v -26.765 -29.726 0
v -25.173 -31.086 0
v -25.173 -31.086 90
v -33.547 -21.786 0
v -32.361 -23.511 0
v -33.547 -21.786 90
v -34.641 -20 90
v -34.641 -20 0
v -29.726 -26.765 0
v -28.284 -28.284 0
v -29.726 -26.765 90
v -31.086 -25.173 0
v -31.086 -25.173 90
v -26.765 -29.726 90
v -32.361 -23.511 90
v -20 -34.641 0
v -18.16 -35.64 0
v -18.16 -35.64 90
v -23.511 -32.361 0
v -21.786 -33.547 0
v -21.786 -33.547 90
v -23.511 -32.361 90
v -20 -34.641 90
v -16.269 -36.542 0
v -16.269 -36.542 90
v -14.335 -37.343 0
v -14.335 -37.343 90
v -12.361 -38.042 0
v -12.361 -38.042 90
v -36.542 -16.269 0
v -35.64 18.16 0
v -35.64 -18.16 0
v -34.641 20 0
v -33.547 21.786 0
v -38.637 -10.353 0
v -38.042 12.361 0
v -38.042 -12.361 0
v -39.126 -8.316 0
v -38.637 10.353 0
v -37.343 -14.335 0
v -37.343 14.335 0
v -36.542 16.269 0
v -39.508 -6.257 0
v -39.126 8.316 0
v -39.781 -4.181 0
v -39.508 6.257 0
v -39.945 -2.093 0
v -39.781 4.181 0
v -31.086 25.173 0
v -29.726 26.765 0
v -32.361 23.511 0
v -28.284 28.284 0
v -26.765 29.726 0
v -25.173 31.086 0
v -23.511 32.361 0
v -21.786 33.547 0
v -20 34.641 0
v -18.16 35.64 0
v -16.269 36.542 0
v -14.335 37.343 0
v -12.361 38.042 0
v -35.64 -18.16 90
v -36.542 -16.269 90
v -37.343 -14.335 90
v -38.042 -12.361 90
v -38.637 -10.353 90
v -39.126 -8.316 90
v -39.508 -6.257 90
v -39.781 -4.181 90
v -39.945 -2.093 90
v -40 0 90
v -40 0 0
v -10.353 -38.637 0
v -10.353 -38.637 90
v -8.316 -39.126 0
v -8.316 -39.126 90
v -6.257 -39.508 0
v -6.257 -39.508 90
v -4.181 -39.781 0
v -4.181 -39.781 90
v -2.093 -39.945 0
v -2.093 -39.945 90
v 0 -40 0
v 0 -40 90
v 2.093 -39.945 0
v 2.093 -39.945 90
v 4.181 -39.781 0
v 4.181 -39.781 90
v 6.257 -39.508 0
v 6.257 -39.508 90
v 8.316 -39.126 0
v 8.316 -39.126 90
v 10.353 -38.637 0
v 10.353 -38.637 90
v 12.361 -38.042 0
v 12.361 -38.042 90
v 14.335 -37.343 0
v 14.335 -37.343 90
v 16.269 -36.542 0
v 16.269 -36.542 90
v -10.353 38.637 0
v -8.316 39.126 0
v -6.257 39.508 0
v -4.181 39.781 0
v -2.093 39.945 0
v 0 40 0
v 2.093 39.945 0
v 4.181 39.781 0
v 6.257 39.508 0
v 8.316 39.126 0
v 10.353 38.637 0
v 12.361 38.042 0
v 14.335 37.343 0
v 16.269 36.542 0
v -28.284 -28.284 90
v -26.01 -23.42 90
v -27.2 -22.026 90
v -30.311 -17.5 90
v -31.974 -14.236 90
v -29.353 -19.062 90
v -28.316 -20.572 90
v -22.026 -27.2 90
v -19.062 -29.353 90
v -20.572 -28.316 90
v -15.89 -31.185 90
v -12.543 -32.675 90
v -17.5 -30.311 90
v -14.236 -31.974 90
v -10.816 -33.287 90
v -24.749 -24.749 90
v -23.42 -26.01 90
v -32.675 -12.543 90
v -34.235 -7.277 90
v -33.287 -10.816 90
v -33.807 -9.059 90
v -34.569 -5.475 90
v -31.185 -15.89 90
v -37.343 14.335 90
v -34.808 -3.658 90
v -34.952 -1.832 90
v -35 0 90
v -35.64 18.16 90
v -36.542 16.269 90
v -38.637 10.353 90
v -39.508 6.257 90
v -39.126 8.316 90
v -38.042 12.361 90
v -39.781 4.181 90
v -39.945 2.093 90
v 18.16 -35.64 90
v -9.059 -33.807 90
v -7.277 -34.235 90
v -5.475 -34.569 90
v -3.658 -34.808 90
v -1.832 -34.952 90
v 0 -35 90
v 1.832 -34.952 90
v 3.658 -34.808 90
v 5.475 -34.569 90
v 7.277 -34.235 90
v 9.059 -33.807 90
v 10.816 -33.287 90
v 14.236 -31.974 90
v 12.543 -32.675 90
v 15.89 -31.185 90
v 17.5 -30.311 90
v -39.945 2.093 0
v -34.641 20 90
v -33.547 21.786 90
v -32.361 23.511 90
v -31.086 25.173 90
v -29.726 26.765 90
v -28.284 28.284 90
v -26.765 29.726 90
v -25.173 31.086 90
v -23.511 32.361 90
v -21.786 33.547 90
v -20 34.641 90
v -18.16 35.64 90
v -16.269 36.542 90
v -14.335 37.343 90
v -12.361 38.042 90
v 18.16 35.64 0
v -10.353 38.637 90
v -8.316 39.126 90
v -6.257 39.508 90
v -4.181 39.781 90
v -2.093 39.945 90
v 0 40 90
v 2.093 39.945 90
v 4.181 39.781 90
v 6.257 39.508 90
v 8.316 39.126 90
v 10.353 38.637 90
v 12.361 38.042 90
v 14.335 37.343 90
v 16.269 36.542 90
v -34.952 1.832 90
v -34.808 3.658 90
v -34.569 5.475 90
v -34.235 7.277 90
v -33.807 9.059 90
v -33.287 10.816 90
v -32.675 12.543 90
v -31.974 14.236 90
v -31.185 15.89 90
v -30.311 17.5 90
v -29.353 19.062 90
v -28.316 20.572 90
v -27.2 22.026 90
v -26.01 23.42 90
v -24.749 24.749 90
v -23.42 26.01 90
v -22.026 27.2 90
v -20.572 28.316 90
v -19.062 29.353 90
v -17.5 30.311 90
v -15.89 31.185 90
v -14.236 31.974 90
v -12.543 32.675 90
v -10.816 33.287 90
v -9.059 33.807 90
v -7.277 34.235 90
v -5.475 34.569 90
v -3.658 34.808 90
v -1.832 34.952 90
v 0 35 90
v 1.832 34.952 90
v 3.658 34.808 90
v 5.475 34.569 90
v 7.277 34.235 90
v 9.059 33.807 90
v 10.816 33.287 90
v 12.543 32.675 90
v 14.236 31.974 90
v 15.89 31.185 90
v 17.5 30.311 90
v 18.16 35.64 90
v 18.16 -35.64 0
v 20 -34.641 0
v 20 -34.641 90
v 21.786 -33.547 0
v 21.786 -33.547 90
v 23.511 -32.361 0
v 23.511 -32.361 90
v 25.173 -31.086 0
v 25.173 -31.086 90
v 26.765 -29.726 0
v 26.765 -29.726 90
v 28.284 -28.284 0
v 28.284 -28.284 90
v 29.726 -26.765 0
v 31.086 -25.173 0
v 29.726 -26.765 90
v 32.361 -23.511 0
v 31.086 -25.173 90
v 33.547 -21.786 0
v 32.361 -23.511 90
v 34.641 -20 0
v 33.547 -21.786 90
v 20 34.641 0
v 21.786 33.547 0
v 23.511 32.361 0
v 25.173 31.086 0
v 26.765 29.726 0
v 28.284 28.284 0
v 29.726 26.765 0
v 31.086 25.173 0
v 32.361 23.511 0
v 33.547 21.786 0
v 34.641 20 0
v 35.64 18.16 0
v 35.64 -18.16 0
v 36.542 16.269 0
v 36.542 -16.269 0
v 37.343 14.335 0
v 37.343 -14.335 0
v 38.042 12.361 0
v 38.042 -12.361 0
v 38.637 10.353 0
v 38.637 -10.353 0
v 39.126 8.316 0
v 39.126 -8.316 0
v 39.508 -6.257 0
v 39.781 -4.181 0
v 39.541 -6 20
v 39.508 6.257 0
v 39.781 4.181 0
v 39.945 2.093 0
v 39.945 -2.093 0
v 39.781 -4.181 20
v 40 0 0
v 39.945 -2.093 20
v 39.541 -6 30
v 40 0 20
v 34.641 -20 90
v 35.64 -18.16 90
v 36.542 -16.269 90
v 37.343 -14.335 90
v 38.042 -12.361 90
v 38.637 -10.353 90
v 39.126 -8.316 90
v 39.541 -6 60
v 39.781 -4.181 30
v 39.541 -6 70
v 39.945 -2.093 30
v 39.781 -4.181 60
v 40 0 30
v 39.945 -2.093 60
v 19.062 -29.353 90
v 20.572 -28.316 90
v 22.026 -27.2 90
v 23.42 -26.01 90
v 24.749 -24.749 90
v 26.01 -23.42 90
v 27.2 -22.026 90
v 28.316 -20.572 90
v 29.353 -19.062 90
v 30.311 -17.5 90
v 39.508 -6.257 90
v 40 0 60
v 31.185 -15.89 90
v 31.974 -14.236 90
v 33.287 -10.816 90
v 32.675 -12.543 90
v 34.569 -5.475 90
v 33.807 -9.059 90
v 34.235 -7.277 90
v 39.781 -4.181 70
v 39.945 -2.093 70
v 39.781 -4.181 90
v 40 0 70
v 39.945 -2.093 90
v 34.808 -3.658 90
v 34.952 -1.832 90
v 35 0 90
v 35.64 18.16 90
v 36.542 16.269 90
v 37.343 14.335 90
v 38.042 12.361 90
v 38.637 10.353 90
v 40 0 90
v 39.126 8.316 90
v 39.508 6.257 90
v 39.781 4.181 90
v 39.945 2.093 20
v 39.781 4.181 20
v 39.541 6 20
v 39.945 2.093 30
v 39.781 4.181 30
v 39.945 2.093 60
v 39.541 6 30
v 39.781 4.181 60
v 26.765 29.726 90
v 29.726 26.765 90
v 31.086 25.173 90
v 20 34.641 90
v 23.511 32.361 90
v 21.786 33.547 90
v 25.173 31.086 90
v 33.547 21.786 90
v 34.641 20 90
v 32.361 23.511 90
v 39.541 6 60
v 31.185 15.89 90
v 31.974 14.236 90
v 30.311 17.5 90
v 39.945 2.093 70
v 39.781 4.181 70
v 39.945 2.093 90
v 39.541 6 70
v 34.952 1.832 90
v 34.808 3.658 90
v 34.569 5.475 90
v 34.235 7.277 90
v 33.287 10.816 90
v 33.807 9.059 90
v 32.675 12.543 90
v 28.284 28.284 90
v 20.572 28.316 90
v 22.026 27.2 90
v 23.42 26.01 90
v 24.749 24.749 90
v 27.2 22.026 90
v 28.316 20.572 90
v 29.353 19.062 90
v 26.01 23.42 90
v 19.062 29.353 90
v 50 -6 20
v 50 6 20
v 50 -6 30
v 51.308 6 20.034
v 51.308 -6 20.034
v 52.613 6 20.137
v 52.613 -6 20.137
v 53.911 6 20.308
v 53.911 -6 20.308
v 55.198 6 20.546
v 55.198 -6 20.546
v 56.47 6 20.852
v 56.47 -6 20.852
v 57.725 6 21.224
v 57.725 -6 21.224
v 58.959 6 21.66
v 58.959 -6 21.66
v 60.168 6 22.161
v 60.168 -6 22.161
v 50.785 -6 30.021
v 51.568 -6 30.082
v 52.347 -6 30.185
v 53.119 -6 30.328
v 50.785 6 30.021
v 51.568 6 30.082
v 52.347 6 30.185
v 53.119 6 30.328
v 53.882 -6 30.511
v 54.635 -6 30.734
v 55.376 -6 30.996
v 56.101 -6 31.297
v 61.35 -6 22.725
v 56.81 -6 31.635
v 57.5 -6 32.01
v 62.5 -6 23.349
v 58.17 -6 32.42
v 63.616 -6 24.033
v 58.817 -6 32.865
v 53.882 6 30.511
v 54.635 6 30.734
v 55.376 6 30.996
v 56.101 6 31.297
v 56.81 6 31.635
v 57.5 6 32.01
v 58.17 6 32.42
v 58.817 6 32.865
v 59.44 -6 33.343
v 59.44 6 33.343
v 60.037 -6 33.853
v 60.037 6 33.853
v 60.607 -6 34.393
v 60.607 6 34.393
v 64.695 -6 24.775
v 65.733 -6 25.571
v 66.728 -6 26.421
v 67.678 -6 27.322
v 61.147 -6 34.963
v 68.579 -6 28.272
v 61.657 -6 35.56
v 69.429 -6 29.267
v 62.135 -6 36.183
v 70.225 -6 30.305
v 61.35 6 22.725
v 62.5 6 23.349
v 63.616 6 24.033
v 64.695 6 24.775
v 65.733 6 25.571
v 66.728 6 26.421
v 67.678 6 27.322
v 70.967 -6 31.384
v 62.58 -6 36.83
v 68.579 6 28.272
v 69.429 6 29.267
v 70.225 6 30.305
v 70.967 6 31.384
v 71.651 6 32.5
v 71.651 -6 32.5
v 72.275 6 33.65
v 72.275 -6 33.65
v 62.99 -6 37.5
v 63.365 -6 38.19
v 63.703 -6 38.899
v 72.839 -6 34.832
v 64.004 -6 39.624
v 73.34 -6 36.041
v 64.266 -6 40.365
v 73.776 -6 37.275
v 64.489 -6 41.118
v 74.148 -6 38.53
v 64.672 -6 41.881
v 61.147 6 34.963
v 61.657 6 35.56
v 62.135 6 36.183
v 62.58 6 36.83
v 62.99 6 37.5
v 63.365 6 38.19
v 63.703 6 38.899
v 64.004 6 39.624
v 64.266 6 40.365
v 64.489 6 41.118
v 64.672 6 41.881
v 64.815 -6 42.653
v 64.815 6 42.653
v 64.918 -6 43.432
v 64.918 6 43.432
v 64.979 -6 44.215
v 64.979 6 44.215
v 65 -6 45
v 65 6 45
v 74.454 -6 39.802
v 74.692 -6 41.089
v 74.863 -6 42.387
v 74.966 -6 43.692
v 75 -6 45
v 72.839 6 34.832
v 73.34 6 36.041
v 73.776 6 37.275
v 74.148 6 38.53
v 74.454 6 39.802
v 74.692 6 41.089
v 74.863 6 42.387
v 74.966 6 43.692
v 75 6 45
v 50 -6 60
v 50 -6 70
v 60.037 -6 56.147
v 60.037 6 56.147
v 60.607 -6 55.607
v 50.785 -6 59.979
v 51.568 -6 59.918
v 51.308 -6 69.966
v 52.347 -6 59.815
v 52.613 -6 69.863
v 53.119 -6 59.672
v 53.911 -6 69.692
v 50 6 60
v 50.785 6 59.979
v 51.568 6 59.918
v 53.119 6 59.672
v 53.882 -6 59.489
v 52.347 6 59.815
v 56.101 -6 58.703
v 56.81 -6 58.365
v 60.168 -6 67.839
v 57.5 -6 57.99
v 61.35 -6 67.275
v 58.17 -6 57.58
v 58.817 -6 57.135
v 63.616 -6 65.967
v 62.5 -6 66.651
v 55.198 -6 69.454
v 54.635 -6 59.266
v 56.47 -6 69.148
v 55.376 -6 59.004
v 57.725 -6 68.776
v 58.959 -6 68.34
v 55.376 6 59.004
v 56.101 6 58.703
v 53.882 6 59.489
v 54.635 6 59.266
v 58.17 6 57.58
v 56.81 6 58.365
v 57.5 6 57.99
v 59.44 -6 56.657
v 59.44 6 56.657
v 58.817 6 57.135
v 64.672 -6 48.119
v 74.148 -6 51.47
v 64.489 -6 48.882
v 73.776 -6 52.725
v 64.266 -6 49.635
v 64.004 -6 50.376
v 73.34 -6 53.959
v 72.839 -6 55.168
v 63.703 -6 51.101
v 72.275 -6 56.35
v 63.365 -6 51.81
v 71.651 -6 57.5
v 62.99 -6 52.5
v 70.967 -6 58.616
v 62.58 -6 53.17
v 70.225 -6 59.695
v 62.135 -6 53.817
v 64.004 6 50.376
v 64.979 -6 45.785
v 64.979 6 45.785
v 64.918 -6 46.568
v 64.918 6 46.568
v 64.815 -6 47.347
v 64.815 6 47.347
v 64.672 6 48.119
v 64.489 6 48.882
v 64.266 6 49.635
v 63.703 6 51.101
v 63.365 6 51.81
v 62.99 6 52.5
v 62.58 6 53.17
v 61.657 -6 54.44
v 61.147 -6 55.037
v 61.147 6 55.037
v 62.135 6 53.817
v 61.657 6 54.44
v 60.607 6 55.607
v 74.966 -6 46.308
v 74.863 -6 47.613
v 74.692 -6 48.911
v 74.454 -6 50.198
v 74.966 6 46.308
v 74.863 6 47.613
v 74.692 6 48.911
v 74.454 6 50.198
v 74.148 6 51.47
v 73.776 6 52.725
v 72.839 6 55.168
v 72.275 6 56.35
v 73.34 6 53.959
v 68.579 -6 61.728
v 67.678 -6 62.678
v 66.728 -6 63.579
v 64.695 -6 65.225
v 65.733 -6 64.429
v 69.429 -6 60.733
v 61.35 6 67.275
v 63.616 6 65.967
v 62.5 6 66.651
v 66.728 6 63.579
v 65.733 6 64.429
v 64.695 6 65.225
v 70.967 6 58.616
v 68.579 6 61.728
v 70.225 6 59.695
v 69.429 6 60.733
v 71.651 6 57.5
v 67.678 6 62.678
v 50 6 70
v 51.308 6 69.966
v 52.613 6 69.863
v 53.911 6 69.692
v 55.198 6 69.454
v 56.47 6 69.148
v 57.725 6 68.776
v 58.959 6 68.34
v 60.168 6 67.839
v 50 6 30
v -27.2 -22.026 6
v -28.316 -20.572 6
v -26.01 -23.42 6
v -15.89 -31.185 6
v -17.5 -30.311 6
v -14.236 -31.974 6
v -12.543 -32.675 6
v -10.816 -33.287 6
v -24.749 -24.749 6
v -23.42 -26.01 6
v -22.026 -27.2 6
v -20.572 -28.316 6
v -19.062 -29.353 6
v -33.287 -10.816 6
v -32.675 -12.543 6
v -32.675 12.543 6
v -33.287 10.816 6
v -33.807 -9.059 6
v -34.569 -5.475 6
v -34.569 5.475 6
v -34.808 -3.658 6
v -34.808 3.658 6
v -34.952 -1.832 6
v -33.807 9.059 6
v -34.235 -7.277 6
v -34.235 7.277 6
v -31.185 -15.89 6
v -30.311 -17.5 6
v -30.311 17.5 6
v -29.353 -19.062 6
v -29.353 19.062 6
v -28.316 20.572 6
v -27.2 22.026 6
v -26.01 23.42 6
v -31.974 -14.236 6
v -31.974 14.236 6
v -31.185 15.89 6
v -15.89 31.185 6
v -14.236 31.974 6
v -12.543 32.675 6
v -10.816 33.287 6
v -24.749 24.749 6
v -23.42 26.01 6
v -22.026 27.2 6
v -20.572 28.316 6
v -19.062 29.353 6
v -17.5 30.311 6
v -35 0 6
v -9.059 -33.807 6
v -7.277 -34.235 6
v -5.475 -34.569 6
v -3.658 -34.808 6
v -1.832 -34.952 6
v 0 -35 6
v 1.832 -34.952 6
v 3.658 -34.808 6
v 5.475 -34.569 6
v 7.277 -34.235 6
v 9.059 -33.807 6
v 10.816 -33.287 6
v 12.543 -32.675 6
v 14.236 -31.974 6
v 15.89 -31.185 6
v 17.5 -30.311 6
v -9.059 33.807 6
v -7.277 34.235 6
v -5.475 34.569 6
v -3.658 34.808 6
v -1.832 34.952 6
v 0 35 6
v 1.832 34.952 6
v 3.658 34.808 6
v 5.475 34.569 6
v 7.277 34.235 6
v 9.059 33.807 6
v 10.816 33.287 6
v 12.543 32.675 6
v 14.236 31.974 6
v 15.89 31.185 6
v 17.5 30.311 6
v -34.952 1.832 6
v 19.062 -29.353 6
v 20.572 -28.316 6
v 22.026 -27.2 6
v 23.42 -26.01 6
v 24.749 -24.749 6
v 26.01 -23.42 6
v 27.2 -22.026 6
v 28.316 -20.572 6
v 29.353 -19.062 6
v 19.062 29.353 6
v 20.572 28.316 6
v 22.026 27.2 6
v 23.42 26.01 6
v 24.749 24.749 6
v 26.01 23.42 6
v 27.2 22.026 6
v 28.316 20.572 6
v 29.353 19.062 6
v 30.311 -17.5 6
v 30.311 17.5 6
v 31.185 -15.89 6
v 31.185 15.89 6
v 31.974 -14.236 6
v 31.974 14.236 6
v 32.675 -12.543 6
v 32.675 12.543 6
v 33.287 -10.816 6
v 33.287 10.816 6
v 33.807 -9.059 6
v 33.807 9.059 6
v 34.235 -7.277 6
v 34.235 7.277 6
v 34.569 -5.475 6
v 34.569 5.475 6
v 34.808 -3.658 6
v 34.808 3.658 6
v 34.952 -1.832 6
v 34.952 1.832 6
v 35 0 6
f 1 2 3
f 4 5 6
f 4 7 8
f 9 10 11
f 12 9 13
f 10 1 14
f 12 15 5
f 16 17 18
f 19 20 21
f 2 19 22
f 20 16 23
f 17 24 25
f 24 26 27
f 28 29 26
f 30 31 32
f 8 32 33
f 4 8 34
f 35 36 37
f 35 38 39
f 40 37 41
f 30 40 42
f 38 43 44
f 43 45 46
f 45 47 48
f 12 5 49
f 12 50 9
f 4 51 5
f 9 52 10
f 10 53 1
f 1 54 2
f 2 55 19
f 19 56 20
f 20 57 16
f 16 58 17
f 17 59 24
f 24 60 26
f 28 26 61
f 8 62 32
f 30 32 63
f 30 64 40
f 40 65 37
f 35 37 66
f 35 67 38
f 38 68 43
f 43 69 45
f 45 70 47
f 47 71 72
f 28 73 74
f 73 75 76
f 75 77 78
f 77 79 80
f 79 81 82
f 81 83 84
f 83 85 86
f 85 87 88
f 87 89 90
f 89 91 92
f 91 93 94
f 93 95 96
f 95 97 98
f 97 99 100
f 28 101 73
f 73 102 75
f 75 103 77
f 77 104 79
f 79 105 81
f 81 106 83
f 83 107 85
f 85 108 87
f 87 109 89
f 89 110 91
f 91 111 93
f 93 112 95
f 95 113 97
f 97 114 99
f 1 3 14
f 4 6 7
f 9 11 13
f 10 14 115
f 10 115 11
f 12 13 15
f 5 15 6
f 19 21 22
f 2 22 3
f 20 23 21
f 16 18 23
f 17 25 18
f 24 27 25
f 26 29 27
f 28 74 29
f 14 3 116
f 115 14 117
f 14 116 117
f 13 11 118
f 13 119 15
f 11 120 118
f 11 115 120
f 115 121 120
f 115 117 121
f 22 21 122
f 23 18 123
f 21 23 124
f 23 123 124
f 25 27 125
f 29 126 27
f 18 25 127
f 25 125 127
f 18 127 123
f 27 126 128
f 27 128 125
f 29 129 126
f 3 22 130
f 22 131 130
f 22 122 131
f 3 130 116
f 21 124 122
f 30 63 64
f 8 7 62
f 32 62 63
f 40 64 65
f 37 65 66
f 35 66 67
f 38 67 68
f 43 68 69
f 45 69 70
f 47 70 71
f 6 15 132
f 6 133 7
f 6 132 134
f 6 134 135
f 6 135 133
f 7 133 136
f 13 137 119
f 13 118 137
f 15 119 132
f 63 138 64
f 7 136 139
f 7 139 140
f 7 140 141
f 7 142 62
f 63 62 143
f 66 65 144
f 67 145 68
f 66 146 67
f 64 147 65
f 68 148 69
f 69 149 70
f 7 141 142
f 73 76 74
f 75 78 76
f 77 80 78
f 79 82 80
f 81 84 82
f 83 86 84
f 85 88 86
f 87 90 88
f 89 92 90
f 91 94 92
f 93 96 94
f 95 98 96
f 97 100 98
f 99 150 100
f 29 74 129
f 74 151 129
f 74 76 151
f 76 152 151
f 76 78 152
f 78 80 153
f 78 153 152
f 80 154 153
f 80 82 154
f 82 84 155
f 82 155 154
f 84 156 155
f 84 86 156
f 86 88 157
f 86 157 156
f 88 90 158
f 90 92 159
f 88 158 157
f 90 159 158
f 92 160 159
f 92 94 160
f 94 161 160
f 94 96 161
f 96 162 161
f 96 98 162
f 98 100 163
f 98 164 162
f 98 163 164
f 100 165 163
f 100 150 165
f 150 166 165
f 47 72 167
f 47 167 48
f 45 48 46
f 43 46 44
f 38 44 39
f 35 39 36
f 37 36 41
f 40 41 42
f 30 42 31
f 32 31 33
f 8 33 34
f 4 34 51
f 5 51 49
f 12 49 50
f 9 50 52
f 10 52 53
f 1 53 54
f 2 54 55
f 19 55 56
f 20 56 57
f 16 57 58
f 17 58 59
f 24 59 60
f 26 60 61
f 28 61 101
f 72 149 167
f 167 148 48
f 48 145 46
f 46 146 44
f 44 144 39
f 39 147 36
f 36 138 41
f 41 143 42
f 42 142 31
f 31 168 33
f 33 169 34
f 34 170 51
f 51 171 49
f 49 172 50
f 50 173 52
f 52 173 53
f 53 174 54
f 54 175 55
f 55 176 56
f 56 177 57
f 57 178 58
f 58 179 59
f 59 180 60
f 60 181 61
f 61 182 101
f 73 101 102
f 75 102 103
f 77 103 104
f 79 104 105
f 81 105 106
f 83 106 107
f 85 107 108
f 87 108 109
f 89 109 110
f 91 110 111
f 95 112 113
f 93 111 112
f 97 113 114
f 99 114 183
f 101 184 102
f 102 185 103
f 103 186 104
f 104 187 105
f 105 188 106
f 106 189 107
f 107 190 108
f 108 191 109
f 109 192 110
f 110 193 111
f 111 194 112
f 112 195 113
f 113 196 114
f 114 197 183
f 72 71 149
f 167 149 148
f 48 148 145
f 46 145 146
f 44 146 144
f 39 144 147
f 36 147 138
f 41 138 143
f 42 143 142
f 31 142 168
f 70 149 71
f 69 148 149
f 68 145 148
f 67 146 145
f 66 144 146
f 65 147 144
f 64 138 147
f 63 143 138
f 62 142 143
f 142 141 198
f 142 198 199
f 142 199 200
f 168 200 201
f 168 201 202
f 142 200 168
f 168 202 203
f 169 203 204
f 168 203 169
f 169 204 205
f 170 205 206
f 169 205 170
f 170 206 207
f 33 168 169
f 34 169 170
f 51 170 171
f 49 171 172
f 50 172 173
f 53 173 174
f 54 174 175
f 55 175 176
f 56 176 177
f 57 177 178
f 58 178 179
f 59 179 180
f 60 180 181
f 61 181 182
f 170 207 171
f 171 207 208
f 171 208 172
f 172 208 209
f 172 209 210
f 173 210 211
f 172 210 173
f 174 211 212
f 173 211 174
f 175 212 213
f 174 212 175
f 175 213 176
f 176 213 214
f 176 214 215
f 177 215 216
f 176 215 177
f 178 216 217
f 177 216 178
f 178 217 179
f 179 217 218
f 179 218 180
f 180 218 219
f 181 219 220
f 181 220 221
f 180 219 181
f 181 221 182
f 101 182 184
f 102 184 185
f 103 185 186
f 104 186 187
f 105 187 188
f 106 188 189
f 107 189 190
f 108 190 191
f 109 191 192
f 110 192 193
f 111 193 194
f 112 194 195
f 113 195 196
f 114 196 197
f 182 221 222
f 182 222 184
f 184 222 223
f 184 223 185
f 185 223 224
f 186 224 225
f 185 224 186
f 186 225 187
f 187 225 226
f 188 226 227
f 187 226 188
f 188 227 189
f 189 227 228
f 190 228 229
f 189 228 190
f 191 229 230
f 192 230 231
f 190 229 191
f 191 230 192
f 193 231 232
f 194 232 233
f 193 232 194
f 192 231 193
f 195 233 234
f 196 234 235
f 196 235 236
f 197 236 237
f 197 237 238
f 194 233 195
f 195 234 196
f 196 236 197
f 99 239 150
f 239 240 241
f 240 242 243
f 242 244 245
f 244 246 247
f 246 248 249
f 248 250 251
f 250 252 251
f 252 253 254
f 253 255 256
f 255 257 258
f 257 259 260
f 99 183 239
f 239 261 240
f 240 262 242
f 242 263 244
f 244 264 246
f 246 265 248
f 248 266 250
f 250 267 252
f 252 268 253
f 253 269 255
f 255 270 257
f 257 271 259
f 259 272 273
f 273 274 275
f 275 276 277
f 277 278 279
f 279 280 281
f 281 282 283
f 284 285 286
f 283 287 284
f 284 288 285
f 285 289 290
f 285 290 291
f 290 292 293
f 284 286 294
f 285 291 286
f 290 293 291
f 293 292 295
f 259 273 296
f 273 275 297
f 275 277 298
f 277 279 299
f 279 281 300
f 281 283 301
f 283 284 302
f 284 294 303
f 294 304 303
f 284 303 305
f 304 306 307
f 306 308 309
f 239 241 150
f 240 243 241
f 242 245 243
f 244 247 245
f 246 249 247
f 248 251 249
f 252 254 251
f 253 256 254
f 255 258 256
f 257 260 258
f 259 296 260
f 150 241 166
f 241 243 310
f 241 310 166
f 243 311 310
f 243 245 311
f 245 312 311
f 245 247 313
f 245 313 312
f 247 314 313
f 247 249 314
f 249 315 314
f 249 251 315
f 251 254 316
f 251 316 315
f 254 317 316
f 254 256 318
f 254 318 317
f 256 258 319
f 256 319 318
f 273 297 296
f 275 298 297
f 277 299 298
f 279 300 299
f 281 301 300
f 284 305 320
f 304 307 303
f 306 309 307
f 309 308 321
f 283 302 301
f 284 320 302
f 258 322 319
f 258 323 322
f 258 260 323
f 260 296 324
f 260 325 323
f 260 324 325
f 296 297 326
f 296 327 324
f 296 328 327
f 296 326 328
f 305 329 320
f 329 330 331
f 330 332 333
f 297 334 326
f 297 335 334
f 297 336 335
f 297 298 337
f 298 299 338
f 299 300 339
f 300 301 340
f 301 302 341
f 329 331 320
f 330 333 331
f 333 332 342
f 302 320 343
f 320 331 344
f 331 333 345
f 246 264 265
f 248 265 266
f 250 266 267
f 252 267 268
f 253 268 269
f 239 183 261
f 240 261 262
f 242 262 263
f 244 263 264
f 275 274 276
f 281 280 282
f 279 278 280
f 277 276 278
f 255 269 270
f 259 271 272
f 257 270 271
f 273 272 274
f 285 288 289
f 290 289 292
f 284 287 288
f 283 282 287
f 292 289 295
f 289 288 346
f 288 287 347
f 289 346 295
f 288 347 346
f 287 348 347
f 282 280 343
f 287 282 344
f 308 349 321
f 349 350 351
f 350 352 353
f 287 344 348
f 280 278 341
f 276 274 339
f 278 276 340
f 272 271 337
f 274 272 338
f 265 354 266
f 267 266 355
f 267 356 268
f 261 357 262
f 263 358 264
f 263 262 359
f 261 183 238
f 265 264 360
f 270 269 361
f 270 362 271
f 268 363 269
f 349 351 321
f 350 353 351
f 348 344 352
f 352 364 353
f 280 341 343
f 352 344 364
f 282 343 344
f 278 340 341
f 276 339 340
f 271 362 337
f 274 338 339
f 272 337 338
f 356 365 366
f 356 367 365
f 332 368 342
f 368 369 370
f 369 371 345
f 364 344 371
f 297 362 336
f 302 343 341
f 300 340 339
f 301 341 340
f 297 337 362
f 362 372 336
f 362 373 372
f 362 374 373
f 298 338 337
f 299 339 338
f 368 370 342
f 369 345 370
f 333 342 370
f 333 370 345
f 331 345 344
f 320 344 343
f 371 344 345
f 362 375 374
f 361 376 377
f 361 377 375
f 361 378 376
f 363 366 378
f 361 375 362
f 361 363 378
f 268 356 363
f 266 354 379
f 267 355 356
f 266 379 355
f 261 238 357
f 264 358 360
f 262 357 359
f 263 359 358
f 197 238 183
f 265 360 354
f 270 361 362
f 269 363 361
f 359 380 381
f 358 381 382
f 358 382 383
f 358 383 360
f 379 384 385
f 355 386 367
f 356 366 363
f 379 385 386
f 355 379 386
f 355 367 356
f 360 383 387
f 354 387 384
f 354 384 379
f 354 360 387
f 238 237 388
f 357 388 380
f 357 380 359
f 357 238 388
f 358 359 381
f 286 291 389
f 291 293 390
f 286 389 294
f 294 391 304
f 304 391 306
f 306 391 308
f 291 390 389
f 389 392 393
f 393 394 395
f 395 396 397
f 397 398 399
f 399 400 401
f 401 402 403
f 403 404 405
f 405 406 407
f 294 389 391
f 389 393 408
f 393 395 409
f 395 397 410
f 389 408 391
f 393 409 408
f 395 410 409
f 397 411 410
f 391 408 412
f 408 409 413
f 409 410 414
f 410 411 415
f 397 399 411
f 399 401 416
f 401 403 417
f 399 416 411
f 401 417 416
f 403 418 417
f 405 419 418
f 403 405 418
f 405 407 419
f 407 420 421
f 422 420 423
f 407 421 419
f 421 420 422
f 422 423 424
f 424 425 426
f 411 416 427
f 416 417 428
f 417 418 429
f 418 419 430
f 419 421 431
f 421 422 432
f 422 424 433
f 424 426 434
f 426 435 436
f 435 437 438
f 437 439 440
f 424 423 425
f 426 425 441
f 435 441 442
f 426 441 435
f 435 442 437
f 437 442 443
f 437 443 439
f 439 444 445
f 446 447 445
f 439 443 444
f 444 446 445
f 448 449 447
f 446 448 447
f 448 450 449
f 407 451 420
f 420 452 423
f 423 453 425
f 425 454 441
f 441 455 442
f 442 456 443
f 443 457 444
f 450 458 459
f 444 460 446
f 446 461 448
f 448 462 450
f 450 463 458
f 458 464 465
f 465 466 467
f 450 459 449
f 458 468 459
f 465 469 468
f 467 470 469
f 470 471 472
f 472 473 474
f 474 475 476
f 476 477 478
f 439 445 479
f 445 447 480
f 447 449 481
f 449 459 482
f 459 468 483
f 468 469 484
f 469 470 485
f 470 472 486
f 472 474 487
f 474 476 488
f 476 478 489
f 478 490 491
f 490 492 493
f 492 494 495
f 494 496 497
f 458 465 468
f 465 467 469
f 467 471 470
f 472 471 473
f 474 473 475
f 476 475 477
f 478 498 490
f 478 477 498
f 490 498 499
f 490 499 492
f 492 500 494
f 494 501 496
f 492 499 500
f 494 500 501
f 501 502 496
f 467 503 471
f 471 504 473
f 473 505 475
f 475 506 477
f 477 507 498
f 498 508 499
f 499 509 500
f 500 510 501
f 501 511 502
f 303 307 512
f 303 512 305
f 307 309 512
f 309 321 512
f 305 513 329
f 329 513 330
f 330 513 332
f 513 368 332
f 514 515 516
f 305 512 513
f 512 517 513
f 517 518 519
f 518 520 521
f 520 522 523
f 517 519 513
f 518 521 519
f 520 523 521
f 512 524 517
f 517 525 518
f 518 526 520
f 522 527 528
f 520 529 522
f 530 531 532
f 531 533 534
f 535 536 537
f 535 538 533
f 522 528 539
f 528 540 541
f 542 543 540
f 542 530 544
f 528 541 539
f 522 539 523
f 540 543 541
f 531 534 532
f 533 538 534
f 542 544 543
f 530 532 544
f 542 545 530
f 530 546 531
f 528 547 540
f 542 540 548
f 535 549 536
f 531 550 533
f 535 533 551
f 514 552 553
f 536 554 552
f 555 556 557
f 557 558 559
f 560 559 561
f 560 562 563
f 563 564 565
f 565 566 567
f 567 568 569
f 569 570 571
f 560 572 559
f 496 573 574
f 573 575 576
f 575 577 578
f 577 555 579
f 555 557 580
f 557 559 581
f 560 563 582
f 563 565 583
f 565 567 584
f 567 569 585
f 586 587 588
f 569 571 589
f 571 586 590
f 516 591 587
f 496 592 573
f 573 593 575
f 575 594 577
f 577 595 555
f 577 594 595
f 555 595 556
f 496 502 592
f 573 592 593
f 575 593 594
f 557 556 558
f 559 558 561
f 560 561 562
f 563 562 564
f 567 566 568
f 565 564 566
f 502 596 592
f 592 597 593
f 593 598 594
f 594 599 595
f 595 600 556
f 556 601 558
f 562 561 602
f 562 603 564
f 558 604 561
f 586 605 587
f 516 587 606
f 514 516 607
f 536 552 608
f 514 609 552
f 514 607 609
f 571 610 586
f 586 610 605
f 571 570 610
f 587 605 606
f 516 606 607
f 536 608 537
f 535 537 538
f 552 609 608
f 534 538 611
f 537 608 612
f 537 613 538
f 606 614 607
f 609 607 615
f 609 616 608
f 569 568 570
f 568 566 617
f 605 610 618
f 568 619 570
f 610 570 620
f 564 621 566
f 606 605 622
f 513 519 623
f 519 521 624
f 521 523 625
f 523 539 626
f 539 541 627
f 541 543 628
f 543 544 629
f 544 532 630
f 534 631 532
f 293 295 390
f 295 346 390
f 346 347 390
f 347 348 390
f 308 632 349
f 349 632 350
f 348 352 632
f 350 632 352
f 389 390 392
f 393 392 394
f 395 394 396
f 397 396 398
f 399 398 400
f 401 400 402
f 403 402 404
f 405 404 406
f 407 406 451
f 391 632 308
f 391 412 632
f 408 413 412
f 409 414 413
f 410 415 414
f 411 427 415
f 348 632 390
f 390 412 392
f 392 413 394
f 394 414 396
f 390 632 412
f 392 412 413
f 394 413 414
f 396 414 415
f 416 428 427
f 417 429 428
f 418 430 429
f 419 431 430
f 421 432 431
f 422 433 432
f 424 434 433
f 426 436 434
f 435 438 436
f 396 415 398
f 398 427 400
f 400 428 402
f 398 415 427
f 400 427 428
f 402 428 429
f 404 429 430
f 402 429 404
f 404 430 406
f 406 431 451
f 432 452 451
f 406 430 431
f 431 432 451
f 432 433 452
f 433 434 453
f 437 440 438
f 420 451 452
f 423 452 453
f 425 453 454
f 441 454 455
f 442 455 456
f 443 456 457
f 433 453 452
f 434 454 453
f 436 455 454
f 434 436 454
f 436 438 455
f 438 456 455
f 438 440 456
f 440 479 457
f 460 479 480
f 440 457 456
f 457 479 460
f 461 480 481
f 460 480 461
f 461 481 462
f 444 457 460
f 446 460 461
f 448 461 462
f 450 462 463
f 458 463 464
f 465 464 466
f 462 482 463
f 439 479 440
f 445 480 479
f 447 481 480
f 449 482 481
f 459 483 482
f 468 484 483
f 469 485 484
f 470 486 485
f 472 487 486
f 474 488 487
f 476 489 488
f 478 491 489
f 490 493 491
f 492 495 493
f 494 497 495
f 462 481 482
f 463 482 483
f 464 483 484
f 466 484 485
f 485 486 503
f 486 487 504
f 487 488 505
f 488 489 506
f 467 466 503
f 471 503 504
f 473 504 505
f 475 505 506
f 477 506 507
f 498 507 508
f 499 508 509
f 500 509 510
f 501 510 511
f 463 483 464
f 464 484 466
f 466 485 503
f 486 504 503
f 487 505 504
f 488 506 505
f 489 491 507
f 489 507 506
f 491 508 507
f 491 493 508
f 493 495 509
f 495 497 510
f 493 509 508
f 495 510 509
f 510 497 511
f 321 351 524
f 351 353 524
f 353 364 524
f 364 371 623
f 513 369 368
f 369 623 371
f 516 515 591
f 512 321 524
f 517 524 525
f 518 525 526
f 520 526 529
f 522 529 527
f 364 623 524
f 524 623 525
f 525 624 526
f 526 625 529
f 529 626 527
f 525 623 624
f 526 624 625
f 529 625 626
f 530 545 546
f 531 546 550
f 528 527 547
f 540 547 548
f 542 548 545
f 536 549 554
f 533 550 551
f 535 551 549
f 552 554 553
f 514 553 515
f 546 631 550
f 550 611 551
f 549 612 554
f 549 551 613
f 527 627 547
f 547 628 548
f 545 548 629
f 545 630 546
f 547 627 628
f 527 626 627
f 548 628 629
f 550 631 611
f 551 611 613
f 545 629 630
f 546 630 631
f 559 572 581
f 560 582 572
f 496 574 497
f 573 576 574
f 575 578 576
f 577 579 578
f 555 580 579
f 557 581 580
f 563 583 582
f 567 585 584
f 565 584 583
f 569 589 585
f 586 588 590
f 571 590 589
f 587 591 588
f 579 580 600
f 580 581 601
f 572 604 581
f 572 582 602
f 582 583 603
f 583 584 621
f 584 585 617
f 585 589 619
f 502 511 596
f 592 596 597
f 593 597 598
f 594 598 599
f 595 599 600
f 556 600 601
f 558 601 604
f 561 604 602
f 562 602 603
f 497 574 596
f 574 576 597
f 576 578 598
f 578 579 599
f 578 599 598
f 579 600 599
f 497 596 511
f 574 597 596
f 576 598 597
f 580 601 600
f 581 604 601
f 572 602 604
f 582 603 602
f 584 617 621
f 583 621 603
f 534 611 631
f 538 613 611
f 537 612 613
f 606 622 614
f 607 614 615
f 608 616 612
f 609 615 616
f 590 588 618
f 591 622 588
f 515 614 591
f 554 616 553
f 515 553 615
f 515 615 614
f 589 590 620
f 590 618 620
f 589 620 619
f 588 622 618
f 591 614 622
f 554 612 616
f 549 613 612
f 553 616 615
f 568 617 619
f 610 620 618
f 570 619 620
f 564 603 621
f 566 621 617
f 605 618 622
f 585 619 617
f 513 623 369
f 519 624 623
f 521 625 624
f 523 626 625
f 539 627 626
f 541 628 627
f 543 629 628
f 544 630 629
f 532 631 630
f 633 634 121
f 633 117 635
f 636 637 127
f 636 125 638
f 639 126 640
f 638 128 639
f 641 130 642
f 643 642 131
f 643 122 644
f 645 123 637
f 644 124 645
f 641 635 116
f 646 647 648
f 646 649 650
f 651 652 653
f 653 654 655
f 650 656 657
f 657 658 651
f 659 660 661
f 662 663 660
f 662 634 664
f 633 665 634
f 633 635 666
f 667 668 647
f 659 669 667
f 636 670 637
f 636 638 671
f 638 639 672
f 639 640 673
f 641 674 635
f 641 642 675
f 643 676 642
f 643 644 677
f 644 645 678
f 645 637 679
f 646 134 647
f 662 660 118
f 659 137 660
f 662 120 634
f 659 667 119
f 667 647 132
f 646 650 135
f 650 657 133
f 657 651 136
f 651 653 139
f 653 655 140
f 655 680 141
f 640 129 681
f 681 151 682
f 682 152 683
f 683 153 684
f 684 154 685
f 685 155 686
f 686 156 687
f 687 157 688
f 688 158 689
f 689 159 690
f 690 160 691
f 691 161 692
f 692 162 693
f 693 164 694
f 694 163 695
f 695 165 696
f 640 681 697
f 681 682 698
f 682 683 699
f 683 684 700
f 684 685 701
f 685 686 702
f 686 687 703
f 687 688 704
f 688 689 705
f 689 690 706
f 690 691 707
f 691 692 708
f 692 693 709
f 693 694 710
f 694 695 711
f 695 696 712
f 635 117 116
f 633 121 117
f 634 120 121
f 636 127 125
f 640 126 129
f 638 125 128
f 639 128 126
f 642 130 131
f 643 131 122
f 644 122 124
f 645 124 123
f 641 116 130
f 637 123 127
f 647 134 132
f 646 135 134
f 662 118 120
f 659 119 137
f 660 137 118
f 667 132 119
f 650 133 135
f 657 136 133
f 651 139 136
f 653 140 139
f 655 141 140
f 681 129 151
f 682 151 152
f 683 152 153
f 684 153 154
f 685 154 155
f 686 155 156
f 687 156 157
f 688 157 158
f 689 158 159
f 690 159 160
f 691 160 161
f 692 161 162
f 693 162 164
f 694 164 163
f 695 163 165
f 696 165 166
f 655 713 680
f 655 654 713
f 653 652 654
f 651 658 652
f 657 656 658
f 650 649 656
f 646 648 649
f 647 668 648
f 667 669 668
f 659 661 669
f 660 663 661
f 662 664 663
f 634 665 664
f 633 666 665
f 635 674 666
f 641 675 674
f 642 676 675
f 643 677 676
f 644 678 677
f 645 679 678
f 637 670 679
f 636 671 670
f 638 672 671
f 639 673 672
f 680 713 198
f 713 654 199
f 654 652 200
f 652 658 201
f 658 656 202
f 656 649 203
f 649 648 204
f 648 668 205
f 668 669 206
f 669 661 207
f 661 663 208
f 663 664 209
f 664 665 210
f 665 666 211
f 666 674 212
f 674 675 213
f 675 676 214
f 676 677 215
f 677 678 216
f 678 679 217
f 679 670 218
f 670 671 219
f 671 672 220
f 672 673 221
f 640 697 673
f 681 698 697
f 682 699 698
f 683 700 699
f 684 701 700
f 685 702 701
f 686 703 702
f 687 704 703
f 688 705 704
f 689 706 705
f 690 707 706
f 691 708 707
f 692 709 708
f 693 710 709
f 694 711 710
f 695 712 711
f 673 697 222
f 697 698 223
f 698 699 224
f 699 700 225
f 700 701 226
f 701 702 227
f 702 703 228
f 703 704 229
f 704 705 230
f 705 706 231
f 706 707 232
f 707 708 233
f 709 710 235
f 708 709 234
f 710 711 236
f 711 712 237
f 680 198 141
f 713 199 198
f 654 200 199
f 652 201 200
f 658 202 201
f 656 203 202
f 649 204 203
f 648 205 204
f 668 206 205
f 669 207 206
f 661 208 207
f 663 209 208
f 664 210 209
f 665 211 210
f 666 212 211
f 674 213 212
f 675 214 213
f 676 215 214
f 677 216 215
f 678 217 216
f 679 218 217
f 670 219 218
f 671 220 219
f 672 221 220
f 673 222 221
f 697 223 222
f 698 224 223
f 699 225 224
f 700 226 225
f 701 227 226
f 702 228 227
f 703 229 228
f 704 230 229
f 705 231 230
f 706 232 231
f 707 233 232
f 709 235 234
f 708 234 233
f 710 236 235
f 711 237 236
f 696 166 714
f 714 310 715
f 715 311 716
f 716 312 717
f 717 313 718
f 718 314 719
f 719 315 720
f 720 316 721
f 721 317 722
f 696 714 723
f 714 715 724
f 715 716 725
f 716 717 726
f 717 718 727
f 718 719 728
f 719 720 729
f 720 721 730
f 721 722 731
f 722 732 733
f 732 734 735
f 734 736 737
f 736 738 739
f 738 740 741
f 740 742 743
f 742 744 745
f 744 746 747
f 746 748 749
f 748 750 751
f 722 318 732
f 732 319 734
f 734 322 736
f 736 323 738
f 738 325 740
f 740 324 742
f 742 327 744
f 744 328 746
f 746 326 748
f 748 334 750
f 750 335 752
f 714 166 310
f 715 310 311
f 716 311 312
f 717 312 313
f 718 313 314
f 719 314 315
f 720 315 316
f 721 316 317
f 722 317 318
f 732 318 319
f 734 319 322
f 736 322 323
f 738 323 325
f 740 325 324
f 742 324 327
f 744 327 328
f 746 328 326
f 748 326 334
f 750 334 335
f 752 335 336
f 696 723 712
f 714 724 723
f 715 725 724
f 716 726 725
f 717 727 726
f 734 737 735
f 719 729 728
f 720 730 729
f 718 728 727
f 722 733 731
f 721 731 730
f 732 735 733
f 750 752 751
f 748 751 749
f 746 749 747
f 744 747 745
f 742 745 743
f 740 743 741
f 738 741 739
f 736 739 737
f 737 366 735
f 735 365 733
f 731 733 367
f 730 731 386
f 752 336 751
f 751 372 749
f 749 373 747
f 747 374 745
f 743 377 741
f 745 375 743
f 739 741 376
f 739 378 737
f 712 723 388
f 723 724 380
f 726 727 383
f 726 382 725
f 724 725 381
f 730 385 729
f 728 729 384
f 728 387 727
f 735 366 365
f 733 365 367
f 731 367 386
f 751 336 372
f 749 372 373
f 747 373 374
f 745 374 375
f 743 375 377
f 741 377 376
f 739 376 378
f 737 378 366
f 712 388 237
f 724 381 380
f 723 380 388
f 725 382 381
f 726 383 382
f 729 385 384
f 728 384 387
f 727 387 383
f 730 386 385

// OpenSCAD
// ============================================================
//  マグカップ(取手は +X 方向のみ)
//    本体: 外径80 / 内径70 / 高さ90 / 底厚6
//    取手: D字(外側が半円・本体側が直線)、内側空間 30(H) x 25(W)
// ============================================================
$fn = 120;

/* ---------------- 本体パラメータ ---------------- */
outer_d   = 80;                 // 外径
inner_d   = 70;                 // 内径(肉厚 5mm)
mug_h     = 90;                 // 全高
bottom_t  = 6;                  // 底面の厚み

outer_r   = outer_d / 2;        // 40
inner_r   = inner_d / 2;        // 35

/* ---------------- 取手パラメータ ---------------- */
grip_h    = 30;                 // 取手内側の空間:高さ
grip_w    = 25;                 // 取手内側の空間:幅(本体外周から外向き)
bar_t     = 10;                 // 取手の太さ(D字断面の肉厚)
handle_t  = 12;                 // 取手の厚み(Y方向)
embed     = 4;                  // 本体外周へのめり込み量(確実に union させる)
handle_z  = mug_h / 2;          // 取手の中心高さ(= 45mm : 高さ方向中央)

/* ---------------- 計算値 ---------------- */
out_flat_x = outer_r - embed;               // 36 : 外形D字の直線side(本体内部に食い込む)
out_tip_x  = outer_r + grip_w + bar_t;      // 75 : 外形D字の先端
out_w      = out_tip_x - out_flat_x;        // 39
out_h      = grip_h + 2 * bar_t;            // 50

in_flat_x  = out_flat_x - 1;                // 35 : 内穴は直線側を貫通させC字にする
in_tip_x   = outer_r + grip_w;              // 65
in_w       = in_tip_x - in_flat_x;          // 30
in_h       = grip_h;                        // 30

/* -------- D字 2Dプロファイル(左=直線 / 右=半円) -------- */
module d_profile(w, h) {
    hull() {
        translate([0, -h / 2]) square([0.01, h]);   // 直線側(本体側)
        translate([w - h / 2, 0]) circle(d = h);    // 半円側(外側)
    }
}

/* ---------------- 本体(中実) ---------------- */
module mug_body_solid() {
    cylinder(h = mug_h, r = outer_r);
}

/* ---------------- 内部の空洞 ---------------- */
module mug_cavity() {
    translate([0, 0, bottom_t])
        cylinder(h = mug_h - bottom_t + 1, r = inner_r);   // 上面は開口
}

/* ---------------- 取手(+X 側のみ) ---------------- */
module handle() {
    translate([0, 0, handle_z])
        rotate([90, 0, 0])
            linear_extrude(height = handle_t, center = true)
                difference() {
                    translate([out_flat_x, 0]) d_profile(out_w, out_h);
                    translate([in_flat_x, 0])  d_profile(in_w,  in_h);
                }
}

/* ---------------- 組み立て ---------------- */
module mug() {
    difference() {
        union() {
            mug_body_solid();
            handle();               // 本体外周に 4mm めり込ませて確実に結合
        }
        mug_cavity();               // 取手は内壁(r=35)に届かないので削られない
    }
}

mug();
